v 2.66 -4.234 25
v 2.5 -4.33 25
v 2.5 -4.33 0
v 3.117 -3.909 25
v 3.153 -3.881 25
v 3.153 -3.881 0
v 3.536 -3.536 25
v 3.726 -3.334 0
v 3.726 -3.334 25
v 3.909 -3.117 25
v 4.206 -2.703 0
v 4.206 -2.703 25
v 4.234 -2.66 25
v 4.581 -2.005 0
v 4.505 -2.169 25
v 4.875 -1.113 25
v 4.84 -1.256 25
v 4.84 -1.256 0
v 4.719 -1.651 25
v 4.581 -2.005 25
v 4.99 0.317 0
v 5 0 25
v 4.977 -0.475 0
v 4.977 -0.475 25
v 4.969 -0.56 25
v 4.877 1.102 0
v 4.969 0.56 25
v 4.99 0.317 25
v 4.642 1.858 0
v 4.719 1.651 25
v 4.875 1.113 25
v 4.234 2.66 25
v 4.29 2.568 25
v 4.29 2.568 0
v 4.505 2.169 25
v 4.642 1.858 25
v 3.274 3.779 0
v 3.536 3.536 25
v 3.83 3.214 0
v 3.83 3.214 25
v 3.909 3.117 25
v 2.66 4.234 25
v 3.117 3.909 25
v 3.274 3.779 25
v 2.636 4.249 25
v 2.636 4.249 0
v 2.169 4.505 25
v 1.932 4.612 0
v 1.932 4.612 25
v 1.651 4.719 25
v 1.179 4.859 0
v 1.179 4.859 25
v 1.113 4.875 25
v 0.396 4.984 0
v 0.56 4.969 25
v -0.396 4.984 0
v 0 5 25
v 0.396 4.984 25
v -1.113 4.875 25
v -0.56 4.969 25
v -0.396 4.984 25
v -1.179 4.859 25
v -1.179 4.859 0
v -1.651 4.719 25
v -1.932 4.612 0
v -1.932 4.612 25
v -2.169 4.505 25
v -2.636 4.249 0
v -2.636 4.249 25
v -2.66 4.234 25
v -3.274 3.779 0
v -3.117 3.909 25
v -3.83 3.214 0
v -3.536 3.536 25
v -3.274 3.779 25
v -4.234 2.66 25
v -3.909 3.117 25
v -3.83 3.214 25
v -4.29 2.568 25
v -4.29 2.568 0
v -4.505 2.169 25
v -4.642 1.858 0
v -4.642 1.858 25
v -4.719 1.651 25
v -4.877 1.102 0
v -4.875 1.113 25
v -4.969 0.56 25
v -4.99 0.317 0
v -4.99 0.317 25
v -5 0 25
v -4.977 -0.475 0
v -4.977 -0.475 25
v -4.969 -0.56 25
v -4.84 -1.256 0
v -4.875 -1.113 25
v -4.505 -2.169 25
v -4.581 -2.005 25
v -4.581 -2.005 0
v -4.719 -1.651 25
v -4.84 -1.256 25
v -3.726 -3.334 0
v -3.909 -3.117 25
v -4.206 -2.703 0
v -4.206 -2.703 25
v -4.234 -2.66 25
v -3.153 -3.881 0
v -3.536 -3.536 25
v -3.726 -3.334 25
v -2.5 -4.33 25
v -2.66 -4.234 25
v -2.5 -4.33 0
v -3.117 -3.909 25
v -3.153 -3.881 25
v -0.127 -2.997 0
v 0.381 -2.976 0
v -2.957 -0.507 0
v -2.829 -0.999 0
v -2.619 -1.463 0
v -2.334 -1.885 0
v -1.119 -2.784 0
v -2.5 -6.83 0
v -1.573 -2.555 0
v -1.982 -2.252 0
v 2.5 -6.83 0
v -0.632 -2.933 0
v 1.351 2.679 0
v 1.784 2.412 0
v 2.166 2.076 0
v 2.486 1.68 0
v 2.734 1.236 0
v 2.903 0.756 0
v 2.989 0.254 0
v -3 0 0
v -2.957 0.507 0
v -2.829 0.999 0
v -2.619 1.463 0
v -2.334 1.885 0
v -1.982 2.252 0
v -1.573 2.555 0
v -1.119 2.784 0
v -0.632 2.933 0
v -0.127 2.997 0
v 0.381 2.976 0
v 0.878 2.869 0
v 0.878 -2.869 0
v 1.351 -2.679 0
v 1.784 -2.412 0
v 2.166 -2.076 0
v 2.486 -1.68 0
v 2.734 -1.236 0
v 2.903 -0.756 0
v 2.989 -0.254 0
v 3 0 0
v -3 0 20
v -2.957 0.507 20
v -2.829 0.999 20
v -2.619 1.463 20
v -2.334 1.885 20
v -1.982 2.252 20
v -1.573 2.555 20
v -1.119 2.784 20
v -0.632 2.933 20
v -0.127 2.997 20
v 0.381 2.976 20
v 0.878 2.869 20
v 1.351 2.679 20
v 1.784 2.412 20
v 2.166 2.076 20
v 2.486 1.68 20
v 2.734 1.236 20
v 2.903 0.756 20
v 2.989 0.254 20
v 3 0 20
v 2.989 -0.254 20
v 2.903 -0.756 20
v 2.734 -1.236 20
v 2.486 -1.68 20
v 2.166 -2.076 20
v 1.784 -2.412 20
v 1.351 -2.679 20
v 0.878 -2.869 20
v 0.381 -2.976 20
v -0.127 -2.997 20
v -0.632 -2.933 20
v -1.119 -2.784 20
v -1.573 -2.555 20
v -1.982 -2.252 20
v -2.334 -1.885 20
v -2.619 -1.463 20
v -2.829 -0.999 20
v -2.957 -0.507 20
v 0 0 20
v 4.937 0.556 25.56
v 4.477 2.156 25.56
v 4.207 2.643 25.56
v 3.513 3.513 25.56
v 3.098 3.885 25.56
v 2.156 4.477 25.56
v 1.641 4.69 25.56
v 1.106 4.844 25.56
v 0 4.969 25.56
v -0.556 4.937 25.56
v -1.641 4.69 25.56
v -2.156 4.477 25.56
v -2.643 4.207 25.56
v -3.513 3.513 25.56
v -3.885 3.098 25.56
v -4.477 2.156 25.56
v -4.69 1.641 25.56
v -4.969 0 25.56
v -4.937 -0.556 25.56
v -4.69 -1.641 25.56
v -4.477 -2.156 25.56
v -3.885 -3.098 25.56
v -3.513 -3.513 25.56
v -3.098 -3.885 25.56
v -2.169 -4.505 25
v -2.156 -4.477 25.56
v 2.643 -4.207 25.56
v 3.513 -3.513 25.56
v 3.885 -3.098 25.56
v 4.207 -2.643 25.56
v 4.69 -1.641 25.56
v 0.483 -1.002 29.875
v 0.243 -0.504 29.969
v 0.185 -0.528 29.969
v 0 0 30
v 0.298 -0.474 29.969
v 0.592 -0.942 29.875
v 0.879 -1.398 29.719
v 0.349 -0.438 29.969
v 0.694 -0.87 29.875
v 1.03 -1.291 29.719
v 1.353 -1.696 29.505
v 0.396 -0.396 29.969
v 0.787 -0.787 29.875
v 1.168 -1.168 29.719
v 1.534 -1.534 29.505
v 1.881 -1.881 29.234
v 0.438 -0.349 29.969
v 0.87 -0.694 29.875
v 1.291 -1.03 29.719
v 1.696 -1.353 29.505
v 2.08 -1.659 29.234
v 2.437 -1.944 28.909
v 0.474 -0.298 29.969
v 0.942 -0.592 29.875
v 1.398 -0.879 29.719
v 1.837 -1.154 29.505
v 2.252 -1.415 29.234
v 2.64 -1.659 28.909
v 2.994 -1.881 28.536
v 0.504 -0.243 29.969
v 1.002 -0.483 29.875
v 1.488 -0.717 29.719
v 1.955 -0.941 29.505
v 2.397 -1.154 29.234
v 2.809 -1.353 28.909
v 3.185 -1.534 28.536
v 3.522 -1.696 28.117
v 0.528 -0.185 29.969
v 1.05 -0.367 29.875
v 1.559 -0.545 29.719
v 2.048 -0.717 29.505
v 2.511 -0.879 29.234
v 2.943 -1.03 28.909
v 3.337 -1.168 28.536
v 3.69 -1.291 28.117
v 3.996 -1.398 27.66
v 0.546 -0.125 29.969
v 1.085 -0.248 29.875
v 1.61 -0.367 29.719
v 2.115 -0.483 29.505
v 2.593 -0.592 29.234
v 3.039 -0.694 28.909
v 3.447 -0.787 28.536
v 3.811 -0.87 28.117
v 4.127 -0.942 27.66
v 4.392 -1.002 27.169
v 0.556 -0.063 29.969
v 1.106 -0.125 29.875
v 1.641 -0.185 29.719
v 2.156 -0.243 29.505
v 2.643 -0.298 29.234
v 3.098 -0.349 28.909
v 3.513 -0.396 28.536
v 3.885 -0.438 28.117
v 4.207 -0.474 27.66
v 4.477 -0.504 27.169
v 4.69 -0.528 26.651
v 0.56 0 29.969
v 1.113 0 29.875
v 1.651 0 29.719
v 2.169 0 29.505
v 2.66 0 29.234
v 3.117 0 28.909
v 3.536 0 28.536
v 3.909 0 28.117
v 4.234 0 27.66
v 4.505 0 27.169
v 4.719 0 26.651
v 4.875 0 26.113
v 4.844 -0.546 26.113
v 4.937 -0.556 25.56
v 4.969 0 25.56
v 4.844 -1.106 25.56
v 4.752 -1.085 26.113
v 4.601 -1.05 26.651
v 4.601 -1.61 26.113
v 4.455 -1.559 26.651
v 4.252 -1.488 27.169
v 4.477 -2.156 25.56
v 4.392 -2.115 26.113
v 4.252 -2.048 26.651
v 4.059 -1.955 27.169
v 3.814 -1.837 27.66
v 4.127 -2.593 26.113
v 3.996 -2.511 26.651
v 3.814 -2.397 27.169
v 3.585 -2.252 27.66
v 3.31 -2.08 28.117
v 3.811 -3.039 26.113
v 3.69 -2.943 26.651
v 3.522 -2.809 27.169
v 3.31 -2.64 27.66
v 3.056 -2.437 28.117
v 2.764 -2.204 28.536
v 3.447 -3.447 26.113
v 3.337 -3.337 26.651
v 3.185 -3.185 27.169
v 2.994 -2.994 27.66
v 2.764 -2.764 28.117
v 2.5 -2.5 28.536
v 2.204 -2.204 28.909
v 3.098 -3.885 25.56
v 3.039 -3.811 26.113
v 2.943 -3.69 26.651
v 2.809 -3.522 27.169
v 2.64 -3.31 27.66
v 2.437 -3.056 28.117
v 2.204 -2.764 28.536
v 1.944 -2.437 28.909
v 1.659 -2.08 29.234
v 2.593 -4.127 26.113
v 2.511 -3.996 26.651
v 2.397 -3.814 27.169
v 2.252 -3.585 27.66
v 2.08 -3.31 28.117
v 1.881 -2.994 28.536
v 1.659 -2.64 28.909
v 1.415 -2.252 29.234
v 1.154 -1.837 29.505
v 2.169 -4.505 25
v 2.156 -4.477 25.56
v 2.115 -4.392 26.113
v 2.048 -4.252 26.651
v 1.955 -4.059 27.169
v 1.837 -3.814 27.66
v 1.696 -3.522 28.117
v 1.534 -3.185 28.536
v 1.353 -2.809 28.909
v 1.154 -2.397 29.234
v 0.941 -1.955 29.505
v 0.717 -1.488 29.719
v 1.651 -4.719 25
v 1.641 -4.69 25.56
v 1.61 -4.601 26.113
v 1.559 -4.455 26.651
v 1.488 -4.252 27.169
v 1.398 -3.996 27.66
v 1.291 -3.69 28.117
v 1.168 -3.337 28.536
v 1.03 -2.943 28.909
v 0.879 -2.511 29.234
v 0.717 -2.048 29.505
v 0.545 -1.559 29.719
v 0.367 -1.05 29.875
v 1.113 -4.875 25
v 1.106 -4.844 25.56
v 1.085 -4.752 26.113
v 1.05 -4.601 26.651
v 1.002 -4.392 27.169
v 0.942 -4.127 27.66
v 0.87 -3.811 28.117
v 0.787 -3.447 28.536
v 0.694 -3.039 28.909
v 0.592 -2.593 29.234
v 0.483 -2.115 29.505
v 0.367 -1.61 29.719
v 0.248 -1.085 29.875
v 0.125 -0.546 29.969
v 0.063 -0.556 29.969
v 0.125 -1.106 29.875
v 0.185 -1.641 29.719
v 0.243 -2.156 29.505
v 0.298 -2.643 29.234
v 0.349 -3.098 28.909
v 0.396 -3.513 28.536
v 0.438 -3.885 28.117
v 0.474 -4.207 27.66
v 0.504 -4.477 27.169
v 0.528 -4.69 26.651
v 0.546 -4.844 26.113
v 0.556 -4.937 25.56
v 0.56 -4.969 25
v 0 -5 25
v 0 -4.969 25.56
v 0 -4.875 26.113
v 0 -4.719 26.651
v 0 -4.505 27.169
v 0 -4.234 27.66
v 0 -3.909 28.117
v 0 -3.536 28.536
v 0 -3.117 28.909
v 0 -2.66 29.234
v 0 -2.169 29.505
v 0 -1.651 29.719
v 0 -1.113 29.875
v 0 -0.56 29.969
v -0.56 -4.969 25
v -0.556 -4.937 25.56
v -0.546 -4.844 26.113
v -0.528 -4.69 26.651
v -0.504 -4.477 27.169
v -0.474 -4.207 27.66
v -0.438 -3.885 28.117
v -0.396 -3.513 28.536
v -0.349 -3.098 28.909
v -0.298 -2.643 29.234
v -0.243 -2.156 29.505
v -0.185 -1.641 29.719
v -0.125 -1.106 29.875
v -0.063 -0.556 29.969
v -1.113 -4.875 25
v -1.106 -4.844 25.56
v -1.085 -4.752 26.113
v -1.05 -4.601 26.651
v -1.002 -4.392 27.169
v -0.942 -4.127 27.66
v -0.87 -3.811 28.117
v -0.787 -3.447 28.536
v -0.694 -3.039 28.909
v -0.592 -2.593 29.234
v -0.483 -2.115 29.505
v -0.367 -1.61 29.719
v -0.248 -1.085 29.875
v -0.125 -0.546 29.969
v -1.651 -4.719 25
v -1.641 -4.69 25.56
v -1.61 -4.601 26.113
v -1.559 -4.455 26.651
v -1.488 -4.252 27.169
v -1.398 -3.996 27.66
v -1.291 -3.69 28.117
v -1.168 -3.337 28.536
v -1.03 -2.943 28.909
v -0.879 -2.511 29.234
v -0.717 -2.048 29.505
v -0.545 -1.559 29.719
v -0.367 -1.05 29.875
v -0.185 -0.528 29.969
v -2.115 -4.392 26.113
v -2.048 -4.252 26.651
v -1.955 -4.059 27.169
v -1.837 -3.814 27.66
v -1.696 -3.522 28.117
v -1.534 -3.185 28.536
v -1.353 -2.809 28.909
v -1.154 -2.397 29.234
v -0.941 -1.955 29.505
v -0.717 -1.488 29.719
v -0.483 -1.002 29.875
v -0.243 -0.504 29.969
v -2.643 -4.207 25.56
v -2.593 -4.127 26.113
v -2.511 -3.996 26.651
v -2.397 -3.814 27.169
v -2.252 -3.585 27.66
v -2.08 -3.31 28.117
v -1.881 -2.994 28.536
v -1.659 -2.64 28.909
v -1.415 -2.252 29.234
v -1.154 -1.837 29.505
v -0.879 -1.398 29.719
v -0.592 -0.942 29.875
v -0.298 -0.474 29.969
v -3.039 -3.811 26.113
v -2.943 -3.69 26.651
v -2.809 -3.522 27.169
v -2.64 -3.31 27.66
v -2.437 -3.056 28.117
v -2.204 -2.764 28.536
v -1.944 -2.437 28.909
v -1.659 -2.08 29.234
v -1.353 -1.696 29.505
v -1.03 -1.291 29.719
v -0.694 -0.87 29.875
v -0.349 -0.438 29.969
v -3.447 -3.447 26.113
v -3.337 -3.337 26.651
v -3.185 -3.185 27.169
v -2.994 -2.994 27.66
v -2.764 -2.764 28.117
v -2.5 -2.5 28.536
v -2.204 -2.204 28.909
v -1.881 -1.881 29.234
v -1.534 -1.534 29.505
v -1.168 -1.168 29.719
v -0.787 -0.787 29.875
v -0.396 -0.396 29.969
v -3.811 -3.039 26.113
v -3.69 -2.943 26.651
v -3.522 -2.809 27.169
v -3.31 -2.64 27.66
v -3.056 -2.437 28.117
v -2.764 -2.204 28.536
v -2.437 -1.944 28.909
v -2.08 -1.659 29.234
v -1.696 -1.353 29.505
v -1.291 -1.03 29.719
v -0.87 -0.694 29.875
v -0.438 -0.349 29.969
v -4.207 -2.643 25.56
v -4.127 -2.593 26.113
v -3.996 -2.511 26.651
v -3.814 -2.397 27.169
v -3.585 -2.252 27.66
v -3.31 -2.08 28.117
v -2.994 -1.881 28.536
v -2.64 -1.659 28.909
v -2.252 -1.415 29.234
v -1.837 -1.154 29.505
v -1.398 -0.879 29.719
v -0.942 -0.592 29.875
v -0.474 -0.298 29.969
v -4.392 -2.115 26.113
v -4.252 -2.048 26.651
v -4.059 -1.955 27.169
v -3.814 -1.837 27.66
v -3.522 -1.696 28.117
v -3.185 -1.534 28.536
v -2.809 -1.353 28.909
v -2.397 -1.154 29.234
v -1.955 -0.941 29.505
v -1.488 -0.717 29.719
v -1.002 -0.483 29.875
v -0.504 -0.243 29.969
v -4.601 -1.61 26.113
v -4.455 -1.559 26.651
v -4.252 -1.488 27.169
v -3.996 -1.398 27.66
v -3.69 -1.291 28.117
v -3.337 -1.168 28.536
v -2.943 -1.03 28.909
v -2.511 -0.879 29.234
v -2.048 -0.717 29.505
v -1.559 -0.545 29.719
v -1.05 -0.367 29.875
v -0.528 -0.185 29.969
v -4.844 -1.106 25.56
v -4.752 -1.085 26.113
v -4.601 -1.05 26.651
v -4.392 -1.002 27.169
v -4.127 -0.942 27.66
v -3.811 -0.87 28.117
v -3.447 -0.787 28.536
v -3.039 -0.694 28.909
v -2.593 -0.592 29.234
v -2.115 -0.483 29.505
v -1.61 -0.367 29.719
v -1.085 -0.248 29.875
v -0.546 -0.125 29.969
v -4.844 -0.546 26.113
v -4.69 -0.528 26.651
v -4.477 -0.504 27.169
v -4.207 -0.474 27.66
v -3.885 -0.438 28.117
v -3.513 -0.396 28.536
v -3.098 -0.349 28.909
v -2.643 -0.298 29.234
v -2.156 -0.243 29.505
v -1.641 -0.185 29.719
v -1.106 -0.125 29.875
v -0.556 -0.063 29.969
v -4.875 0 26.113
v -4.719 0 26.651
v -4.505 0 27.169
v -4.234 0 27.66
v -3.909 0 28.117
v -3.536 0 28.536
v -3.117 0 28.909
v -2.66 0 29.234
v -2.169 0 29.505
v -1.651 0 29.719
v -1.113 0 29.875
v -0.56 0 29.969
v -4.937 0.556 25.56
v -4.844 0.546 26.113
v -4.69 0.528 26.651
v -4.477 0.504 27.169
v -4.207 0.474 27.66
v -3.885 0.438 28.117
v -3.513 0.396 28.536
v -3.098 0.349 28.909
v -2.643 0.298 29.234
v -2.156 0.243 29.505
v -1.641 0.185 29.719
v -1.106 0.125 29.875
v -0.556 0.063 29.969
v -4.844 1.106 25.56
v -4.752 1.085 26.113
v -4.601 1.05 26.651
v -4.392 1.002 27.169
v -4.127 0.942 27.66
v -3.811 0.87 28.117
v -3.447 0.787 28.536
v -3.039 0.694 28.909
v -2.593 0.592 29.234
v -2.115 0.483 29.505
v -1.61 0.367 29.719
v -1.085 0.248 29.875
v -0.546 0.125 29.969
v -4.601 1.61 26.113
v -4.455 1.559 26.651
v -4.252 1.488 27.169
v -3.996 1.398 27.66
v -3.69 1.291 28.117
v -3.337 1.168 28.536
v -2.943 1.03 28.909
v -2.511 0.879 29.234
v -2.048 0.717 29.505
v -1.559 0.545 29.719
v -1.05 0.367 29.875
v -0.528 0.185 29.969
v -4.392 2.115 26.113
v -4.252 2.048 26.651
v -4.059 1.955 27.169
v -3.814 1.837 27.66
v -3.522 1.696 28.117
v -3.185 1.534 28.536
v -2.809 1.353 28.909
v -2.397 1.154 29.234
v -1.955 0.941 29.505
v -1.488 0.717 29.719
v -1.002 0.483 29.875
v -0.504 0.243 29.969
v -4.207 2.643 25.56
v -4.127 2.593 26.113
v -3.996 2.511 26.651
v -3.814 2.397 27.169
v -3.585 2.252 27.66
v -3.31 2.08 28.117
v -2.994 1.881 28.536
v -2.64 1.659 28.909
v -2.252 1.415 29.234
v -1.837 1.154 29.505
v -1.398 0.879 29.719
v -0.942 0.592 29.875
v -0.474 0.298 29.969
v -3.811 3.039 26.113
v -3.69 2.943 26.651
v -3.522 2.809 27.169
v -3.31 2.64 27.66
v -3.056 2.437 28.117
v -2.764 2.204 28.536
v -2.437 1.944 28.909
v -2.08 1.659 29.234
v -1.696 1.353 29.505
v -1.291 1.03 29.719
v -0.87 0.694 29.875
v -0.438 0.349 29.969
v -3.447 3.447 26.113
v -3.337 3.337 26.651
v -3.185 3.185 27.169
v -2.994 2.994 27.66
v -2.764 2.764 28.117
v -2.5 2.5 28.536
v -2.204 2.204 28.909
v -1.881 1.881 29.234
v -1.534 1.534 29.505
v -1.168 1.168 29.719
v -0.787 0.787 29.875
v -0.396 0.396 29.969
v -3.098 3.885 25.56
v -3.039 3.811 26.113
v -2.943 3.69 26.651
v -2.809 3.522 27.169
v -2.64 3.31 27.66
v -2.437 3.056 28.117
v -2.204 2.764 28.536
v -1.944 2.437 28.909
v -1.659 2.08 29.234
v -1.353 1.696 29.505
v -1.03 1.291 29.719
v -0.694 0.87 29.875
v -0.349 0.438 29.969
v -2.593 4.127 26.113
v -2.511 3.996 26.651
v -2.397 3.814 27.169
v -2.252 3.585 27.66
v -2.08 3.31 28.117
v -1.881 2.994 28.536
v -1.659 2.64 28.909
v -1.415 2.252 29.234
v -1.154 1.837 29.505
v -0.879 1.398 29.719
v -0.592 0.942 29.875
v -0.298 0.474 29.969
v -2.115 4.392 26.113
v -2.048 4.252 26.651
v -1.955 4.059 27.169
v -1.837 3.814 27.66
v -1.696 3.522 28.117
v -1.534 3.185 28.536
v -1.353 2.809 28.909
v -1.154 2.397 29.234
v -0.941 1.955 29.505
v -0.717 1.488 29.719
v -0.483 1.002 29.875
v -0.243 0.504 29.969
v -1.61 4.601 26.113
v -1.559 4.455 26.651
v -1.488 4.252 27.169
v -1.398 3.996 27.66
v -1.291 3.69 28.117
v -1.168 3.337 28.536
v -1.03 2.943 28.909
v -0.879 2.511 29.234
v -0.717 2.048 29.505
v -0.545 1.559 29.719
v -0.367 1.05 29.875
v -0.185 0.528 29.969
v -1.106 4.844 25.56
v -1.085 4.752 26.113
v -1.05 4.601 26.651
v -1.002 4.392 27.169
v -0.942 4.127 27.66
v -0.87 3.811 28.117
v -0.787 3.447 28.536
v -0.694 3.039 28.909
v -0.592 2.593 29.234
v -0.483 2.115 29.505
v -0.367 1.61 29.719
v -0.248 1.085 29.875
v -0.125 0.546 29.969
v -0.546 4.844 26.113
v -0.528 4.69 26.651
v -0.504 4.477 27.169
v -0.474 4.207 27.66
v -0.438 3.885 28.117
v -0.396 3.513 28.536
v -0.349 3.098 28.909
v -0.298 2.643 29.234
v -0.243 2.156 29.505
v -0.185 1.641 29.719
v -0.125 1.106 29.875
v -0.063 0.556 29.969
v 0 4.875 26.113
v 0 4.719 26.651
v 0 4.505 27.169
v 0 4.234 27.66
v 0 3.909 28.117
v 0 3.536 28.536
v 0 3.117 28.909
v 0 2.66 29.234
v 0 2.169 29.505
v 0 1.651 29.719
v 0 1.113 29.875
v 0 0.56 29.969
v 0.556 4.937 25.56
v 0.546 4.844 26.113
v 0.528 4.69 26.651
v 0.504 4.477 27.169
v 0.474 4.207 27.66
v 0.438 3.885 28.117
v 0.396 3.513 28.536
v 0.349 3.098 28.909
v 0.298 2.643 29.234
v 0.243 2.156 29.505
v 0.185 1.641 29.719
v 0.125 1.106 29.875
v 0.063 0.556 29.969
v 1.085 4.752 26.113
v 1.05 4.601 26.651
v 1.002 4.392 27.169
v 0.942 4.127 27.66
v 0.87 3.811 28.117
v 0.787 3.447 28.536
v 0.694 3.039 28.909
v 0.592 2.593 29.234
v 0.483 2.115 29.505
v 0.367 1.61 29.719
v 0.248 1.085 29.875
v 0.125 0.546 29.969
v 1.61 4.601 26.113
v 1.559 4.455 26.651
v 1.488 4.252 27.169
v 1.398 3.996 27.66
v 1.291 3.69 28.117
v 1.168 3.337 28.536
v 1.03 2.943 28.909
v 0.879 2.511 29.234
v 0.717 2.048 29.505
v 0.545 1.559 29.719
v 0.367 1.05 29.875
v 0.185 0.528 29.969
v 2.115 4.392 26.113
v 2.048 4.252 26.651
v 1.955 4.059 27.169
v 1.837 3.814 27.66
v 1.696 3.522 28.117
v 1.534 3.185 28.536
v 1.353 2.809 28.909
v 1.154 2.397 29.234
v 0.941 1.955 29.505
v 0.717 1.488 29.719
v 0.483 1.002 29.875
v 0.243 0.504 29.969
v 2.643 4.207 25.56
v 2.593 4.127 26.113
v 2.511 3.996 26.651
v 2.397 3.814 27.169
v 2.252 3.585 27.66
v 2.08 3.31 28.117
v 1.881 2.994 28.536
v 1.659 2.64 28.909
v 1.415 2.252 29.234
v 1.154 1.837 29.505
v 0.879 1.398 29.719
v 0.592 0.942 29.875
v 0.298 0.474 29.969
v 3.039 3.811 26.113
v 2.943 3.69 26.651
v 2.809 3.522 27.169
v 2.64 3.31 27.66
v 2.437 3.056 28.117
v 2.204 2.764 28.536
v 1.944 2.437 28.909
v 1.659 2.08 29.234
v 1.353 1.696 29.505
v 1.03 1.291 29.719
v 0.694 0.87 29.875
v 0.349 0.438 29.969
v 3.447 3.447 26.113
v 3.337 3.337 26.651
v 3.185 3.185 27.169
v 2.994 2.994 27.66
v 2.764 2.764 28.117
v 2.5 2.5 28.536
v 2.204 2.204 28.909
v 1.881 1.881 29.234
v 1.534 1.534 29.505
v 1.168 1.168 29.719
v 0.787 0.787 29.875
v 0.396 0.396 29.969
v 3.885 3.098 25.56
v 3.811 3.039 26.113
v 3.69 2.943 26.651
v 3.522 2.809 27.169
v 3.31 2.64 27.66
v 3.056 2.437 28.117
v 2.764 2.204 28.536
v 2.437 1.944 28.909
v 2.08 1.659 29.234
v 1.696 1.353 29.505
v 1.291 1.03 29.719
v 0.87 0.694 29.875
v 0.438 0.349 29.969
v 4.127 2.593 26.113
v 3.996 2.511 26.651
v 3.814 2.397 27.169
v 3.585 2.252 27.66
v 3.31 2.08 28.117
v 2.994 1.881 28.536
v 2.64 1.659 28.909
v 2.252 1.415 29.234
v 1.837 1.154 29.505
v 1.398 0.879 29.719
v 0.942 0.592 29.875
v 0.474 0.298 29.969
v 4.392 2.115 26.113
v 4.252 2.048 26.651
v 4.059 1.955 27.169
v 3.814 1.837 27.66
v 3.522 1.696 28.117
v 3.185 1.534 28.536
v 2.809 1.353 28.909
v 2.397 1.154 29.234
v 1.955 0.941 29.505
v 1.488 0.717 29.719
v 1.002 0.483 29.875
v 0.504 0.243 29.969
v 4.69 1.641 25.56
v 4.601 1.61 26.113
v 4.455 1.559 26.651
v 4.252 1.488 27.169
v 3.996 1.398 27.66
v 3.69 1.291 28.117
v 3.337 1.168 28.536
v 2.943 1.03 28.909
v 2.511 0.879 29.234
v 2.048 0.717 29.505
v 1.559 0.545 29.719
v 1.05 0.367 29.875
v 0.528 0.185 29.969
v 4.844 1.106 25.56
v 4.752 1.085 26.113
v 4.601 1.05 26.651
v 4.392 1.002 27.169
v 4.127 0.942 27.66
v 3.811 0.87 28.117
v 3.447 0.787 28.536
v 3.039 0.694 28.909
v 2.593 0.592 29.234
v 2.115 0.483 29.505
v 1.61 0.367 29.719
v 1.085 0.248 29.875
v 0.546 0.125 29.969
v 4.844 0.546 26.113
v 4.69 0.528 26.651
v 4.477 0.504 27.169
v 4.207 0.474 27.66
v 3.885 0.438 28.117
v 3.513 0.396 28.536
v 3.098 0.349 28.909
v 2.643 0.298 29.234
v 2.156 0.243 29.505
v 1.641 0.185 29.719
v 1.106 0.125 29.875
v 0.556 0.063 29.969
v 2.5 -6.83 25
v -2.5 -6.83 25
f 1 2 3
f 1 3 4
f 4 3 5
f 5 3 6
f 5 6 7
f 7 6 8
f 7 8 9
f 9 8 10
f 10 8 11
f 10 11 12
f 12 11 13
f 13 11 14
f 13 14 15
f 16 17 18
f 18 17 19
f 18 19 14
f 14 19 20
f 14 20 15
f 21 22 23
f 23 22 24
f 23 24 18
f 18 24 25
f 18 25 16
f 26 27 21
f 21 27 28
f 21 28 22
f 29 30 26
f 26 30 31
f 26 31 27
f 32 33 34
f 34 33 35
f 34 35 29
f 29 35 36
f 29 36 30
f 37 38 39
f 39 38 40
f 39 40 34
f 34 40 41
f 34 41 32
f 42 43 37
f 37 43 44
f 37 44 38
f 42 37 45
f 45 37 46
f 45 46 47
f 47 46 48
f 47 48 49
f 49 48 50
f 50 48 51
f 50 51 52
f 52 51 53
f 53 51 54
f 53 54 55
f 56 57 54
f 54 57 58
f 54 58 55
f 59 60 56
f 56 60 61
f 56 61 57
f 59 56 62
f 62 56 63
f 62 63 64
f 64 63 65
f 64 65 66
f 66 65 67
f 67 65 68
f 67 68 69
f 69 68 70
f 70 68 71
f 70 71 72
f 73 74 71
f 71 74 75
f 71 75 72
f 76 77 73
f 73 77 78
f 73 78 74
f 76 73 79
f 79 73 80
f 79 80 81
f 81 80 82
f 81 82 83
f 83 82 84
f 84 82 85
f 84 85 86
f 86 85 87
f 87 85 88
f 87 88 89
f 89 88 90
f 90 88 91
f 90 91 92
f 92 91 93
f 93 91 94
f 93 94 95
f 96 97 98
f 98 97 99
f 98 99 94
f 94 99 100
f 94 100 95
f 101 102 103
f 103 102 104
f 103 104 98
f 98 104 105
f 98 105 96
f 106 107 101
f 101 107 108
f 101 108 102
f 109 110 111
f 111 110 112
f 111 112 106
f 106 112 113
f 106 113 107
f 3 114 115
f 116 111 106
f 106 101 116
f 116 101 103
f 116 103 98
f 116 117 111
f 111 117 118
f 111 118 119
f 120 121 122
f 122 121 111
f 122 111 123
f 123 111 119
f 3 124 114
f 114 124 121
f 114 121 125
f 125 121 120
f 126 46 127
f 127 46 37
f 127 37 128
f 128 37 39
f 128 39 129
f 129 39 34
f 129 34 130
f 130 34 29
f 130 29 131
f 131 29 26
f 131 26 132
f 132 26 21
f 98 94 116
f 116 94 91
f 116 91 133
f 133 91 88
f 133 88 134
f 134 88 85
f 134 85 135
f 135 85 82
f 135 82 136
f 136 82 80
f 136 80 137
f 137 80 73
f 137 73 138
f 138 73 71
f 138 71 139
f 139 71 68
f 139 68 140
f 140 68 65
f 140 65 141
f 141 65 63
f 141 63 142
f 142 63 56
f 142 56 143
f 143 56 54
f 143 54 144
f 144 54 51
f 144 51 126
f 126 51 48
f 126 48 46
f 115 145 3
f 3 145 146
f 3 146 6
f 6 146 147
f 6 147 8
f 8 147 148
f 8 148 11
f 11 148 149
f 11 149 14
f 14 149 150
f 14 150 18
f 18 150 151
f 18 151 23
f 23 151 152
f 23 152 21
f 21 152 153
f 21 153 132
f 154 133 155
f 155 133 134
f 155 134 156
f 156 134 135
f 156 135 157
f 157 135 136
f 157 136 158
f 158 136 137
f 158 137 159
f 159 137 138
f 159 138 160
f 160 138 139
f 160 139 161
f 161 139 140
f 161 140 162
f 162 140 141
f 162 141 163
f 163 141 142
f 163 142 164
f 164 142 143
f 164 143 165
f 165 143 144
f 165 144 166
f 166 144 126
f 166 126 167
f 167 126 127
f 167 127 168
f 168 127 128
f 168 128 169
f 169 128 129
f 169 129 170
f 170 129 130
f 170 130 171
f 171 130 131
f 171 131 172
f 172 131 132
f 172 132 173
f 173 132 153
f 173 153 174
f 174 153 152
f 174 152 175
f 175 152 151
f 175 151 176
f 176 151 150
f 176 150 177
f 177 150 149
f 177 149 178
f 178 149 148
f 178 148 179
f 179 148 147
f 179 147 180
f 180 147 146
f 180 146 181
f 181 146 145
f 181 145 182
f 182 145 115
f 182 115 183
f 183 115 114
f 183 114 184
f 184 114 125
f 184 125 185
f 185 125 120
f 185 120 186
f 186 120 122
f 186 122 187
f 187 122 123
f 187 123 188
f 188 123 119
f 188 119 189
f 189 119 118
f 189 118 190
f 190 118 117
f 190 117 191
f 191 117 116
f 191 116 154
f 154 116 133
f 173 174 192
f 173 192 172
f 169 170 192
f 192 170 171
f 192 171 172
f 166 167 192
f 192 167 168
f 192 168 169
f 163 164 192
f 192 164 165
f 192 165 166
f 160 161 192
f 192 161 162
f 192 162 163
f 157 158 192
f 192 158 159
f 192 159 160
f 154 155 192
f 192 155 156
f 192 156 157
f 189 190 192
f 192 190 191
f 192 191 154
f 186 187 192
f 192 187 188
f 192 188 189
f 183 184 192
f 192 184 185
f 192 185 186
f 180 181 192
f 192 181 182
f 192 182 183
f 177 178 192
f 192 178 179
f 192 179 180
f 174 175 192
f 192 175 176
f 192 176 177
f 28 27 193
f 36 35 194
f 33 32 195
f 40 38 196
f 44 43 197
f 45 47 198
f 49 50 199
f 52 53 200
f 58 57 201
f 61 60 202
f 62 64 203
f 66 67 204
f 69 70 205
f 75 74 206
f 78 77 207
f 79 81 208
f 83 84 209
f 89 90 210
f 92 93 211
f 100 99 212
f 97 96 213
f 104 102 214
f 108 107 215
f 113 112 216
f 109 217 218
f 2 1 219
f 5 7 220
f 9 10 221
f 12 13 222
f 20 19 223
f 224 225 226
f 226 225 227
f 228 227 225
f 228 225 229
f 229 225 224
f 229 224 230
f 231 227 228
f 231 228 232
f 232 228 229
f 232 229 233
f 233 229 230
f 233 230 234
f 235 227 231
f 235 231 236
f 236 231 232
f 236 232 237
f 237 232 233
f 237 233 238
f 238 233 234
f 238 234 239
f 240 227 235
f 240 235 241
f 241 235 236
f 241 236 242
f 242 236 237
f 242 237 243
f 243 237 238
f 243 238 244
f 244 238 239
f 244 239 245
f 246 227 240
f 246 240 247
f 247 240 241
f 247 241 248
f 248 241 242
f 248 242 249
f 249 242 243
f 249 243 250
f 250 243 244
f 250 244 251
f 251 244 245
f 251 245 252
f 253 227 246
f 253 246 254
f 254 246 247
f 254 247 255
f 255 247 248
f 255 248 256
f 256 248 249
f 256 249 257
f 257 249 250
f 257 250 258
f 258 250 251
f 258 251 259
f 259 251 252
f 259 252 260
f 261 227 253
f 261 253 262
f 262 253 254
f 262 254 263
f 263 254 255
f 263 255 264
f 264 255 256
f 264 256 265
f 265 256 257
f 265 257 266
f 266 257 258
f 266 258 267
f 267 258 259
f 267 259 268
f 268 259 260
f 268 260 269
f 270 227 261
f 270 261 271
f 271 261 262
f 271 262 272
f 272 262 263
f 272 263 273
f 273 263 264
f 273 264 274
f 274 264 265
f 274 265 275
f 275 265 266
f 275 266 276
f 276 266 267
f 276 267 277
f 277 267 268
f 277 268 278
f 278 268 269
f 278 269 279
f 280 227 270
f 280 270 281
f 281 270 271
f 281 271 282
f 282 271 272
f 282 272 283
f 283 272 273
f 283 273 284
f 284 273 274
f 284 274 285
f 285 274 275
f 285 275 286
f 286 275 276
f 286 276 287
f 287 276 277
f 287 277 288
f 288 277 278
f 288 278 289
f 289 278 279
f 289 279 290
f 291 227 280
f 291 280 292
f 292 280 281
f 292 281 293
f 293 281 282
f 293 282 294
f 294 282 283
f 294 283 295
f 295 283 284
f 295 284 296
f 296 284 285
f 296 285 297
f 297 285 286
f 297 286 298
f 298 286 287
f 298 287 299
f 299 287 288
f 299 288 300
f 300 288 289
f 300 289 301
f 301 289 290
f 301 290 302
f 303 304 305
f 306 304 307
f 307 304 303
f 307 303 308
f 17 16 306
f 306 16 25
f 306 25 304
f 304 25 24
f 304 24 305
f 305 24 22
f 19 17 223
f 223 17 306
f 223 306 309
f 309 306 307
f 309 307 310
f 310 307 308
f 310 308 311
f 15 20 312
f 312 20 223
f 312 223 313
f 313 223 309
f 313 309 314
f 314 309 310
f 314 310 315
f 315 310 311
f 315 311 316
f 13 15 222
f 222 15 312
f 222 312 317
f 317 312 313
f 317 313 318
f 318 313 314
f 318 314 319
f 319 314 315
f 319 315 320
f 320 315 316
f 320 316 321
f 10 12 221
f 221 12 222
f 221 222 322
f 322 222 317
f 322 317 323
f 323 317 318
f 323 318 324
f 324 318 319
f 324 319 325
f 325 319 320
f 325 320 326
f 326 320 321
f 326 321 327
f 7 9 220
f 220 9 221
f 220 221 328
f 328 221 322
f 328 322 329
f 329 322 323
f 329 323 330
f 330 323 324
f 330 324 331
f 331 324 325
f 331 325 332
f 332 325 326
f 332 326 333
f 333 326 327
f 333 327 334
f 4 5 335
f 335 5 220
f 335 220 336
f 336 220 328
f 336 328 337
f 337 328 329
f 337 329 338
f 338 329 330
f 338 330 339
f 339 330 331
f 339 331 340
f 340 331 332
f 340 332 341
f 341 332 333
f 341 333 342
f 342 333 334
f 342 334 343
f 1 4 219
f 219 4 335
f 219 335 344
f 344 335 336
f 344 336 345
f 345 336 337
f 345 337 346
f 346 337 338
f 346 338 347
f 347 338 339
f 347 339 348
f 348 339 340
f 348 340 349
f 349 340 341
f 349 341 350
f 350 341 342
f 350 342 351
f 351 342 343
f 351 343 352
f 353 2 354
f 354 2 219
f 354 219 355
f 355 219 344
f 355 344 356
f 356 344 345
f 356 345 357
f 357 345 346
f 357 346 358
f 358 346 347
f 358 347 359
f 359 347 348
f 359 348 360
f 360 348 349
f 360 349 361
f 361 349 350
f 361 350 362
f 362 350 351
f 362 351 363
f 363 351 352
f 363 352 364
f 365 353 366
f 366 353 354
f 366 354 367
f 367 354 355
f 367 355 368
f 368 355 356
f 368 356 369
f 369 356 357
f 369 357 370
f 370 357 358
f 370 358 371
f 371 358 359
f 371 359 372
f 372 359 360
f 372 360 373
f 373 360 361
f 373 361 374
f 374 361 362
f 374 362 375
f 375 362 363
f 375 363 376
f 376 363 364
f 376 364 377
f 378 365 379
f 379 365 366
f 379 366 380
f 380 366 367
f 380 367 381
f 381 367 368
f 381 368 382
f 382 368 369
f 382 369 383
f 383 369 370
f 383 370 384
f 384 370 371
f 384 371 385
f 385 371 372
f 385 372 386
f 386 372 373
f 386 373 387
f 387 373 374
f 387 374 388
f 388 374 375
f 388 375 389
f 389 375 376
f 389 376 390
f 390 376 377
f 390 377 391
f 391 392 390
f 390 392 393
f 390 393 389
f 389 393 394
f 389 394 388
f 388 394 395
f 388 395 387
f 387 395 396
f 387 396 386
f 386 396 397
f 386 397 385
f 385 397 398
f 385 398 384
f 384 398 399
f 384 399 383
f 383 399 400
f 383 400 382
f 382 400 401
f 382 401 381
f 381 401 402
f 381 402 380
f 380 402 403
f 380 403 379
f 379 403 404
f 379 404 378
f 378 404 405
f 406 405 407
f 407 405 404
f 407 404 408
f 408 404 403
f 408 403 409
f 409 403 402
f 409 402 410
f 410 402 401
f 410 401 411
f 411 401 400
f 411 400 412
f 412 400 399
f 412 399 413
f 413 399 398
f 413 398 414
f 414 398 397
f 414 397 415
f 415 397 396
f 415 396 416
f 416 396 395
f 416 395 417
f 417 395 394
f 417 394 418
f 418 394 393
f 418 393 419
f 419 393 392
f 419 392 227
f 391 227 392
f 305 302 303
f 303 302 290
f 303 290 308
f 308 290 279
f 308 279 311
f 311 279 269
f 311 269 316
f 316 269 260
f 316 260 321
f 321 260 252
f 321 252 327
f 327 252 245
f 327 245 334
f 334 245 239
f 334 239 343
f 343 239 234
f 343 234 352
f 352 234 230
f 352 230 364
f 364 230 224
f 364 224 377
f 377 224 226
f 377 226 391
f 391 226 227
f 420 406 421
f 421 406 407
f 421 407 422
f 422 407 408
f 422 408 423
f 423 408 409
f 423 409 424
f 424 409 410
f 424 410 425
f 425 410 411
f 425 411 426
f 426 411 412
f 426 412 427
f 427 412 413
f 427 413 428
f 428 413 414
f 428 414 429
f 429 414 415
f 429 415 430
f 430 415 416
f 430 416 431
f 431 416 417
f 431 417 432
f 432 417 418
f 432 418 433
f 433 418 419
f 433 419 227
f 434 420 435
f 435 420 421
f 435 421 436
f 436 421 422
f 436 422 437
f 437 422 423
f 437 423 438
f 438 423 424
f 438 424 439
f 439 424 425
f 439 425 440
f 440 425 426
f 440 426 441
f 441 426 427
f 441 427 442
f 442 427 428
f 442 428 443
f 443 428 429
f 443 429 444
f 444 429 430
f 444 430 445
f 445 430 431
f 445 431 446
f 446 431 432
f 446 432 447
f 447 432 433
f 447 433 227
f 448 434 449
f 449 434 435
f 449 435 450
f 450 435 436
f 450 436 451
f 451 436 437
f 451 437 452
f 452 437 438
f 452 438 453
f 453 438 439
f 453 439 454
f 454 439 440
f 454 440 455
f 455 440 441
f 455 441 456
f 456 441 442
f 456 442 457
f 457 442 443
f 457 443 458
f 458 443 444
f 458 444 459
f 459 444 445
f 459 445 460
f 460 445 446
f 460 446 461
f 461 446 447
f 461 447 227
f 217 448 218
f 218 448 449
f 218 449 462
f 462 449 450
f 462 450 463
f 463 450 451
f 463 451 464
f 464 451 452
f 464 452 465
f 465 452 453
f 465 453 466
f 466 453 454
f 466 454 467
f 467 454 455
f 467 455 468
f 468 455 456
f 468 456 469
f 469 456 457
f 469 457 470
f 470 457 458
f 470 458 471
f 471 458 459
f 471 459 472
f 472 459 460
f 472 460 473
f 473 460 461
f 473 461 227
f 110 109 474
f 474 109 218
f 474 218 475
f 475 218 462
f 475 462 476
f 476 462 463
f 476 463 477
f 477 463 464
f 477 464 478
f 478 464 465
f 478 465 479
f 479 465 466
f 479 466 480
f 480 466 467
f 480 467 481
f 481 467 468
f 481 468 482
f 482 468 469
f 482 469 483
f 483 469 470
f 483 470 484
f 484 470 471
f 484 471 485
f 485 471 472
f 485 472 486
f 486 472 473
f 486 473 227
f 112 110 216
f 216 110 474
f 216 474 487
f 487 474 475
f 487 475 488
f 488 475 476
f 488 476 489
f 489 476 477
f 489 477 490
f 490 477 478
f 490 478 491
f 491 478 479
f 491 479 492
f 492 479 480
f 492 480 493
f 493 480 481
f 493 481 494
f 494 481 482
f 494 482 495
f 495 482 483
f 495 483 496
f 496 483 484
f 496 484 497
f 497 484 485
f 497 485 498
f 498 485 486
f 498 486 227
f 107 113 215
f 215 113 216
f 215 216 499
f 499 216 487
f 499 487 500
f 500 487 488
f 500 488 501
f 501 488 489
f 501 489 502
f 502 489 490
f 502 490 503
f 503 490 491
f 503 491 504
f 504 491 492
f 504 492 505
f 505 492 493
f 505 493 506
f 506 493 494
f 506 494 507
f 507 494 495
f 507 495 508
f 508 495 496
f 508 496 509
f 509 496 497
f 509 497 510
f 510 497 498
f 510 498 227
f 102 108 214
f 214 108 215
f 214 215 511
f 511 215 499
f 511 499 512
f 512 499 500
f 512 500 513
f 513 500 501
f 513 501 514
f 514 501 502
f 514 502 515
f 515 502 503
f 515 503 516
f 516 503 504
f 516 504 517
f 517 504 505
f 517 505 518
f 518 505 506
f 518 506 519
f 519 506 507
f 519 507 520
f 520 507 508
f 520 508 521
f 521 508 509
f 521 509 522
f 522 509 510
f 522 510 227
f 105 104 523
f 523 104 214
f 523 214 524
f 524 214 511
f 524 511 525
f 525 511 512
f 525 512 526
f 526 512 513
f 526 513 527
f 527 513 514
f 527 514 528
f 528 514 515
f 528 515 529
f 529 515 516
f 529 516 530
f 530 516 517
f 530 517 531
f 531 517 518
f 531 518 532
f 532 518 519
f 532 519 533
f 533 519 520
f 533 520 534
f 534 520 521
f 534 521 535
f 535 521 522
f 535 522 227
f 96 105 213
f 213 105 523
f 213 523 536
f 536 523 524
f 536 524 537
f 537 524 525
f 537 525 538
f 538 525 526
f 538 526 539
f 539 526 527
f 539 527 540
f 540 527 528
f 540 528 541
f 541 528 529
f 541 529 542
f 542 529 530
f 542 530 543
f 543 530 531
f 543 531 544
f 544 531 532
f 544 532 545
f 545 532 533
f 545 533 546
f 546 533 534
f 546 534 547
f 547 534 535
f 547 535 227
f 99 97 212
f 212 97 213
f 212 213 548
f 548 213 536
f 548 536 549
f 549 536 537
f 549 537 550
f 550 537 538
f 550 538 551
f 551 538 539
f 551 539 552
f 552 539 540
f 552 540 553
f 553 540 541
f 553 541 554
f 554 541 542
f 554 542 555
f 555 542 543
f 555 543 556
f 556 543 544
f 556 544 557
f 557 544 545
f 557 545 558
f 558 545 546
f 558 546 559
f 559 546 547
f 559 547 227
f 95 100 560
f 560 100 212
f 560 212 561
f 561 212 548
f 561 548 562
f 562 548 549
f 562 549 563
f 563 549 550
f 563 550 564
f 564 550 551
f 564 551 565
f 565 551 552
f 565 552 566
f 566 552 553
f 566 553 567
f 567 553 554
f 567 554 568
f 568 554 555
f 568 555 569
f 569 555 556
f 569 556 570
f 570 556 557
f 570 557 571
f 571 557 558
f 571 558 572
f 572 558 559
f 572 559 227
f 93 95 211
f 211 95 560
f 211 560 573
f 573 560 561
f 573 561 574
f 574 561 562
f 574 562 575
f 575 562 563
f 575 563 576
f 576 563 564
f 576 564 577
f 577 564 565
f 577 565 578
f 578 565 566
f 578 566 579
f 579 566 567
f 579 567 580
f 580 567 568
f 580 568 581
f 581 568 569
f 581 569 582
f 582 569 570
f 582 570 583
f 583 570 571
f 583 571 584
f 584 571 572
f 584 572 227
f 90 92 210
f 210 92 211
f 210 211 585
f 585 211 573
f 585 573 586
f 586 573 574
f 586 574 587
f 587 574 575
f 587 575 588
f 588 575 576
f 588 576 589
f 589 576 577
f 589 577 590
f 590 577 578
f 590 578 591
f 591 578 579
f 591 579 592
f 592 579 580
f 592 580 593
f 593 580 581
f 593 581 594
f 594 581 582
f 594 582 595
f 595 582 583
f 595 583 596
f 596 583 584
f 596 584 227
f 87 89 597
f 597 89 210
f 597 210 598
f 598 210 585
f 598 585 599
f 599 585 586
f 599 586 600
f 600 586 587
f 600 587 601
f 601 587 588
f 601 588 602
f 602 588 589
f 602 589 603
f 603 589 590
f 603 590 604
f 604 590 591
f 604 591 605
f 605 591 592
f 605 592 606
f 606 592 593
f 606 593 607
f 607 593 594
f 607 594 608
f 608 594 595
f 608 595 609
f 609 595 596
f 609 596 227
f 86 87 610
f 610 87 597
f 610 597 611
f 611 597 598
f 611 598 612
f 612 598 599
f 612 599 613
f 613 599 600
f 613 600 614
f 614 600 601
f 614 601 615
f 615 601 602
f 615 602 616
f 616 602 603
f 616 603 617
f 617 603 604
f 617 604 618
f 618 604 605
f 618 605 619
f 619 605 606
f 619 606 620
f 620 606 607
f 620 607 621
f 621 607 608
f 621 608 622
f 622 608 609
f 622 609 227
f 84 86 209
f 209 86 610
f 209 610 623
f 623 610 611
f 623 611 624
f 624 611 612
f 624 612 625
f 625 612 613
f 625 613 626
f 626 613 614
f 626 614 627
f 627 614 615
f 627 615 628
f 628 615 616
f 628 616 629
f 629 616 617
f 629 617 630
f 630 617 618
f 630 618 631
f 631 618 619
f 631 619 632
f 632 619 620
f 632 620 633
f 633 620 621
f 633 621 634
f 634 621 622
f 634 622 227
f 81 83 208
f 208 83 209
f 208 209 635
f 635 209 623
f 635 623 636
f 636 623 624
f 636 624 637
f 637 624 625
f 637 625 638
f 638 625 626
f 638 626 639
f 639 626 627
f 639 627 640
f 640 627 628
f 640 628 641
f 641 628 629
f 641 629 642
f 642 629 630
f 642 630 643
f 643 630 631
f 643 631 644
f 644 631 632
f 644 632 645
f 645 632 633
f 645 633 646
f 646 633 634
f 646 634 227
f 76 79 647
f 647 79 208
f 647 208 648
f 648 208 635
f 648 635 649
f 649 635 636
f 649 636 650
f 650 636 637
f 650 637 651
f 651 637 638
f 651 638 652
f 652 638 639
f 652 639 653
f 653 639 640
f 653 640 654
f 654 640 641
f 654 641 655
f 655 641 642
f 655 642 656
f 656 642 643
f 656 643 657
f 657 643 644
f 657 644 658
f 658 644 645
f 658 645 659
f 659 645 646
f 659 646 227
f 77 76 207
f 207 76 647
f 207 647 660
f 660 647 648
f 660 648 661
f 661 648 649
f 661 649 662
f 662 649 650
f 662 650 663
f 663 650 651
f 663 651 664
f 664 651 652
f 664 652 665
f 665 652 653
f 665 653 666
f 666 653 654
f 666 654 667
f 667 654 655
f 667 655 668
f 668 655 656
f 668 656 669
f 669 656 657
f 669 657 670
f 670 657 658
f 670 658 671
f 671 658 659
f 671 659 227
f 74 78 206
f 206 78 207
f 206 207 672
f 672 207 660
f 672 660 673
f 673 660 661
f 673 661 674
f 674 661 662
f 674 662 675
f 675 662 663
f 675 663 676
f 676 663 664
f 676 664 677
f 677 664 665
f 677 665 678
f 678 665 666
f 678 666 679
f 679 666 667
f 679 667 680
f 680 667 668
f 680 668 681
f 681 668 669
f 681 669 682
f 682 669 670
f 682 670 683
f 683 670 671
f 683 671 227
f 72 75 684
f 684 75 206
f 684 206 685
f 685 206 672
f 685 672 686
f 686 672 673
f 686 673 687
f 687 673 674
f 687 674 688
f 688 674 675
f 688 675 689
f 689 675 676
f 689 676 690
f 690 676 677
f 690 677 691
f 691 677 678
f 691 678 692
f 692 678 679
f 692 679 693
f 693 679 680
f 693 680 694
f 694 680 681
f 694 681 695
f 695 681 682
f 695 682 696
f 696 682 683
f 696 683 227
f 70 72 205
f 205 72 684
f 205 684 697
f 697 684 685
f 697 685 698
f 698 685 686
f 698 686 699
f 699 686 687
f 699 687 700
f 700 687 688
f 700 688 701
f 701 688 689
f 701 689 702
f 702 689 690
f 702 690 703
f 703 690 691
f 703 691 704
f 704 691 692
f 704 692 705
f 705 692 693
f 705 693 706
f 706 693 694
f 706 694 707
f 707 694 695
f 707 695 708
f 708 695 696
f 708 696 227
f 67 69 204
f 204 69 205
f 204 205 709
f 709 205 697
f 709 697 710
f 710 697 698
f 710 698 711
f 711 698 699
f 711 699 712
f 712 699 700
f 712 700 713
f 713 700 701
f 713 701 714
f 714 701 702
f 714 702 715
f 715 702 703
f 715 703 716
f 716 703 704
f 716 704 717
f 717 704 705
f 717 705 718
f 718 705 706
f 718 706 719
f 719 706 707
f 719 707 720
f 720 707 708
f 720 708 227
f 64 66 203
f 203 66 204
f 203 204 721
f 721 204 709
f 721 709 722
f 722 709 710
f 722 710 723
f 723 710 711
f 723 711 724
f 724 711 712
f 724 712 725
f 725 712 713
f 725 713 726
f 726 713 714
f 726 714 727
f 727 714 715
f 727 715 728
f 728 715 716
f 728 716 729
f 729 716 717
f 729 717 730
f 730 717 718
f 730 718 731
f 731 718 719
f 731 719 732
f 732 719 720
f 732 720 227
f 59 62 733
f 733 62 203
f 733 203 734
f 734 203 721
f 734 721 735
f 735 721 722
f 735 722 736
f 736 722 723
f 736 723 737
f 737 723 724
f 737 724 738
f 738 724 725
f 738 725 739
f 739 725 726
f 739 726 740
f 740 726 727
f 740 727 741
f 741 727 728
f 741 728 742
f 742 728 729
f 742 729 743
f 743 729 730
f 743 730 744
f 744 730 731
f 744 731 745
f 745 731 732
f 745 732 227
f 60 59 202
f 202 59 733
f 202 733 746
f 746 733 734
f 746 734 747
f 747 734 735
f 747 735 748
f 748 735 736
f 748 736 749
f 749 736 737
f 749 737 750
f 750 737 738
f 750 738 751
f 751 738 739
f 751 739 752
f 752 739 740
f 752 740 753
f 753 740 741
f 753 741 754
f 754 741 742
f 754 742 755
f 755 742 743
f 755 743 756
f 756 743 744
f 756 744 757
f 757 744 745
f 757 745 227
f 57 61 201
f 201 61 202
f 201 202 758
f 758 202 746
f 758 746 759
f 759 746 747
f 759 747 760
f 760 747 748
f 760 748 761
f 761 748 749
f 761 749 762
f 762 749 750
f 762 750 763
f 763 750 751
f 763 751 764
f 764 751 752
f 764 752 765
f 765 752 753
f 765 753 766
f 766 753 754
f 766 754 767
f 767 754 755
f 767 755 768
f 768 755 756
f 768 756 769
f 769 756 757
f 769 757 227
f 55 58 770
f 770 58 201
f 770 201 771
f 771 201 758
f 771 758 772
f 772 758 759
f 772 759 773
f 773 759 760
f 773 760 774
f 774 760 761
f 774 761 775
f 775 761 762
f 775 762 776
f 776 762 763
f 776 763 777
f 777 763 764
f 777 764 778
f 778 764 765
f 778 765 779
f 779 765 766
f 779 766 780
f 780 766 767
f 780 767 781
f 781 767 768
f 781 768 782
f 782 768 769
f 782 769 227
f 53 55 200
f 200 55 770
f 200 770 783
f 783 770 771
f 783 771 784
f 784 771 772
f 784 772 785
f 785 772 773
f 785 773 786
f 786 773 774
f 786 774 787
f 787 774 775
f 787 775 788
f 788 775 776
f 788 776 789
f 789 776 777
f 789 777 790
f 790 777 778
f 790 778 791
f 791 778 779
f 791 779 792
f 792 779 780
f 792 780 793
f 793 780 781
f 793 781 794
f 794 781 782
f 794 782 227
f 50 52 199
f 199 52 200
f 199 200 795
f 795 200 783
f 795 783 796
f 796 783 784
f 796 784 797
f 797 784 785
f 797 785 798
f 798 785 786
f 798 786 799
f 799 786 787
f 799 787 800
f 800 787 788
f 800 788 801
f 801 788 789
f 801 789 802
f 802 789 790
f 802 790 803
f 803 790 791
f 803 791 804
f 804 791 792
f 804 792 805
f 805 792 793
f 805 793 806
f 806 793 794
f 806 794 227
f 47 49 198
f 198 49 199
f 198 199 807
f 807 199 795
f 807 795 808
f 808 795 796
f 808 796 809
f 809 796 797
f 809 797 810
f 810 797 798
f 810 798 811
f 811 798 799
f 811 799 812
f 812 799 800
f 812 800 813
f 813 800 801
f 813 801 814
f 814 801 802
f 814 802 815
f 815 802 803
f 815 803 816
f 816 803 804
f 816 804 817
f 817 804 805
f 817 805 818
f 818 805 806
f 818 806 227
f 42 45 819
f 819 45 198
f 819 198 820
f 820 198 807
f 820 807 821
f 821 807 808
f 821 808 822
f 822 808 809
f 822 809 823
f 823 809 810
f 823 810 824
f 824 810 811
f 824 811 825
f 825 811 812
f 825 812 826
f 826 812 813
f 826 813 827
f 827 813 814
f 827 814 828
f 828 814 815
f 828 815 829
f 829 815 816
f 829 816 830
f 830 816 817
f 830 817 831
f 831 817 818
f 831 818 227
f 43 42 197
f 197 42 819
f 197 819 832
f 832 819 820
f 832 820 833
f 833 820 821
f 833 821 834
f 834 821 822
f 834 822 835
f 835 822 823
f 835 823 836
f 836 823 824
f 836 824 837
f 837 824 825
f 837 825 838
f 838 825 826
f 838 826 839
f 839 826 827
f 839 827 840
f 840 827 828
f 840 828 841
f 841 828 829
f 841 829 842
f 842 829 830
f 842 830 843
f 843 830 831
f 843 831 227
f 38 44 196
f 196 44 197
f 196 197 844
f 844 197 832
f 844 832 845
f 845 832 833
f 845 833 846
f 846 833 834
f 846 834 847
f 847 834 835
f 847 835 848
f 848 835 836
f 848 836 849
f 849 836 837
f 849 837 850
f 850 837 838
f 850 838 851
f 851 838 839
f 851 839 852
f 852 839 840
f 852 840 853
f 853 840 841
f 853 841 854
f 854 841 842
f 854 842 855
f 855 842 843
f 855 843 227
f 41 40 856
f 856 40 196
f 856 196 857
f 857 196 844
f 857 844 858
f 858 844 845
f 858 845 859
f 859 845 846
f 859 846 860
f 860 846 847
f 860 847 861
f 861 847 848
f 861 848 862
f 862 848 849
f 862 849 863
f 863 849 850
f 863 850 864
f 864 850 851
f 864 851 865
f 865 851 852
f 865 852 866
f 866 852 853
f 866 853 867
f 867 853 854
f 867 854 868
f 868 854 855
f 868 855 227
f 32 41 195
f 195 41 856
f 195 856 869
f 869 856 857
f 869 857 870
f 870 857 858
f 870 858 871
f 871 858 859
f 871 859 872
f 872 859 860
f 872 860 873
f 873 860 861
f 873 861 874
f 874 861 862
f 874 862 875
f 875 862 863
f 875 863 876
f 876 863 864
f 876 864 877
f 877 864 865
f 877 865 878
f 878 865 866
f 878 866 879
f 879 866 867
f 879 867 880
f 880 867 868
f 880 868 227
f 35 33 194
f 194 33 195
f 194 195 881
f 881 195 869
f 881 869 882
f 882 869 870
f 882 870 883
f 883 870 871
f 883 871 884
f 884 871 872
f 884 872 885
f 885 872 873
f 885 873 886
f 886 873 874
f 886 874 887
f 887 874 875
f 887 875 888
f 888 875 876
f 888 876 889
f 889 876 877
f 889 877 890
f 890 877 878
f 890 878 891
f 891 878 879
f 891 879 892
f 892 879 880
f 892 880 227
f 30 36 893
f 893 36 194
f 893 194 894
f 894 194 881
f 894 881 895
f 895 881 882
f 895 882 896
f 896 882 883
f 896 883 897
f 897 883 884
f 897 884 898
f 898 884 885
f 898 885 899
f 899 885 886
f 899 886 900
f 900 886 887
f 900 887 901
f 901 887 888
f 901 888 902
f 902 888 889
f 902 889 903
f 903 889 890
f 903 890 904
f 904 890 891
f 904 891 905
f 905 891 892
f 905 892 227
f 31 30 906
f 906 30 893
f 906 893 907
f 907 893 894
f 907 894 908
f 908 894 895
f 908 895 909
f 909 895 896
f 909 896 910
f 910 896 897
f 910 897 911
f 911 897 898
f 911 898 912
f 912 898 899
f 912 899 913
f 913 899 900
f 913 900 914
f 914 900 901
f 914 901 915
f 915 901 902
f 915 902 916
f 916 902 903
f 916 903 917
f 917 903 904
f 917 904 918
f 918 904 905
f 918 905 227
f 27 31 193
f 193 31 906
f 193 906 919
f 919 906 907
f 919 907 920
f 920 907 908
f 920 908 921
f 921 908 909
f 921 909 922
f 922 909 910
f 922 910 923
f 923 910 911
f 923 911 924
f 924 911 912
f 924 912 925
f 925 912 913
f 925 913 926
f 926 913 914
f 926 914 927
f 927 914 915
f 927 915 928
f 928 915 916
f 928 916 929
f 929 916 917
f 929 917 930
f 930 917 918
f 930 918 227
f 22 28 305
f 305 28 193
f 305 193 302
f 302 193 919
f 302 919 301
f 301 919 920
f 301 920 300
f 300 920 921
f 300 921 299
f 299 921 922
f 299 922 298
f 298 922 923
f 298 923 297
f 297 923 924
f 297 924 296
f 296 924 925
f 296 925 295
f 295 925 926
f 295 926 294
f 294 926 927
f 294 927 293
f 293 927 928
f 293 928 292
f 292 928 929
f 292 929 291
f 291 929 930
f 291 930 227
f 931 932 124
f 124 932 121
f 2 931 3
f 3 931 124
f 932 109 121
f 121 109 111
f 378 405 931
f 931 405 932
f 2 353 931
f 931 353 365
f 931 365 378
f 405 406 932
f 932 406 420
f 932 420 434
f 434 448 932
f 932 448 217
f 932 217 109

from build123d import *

# Parameters (mm, degrees)
SZKIC1_R                    = 5
DODANIE_WYCI_GNI_CIE1_DEPTH = 30
SZKIC1_3_R                  = 3
WYTNIJ_WYCI_GNI_CIE1_DEPTH  = 20
ZAOKR_GLENIE1_R             = 5
DODANIE_WYCI_GNI_CIE2_DEPTH = 25


with BuildPart() as part:
    # Szkic1 → Dodanie-wyciągnięcie1 (new body)
    with BuildSketch(Plane.XY):
        Circle(SZKIC1_R)
    extrude(amount=DODANIE_WYCI_GNI_CIE1_DEPTH)

    # Szkic1<3> → Wytnij-wyciągnięcie1 (cut)
    with BuildSketch(Plane.XY):
        Circle(SZKIC1_3_R)
    extrude(amount=WYTNIJ_WYCI_GNI_CIE1_DEPTH, mode=Mode.SUBTRACT)

    # Zaokrąglenie1
    zaokr_glenie1_edges = [part.edges().sort_by_distance(p)[0] for p in [
        (-5, 0, 30),
    ]]
    fillet(zaokr_glenie1_edges, radius=ZAOKR_GLENIE1_R)

    # Szkic4 → Dodanie-wyciągnięcie2 (add)
    with BuildSketch(Plane(origin=(0, 0, 0), x_dir=(-1, 0, 0), z_dir=(0, 0, -1))):
        with BuildLine():
            ThreePointArc((2.5, -4.330127019), (0, -5), (-2.5, -4.330127019))
            Line((-2.5, -4.330127019), (-2.5, -6.830127019))
            Line((-2.5, -6.830127019), (2.5, -6.830127019))
            Line((2.5, -6.830127019), (2.5, -4.330127019))
        make_face()
    extrude(amount=-DODANIE_WYCI_GNI_CIE2_DEPTH)


solid = part.part
